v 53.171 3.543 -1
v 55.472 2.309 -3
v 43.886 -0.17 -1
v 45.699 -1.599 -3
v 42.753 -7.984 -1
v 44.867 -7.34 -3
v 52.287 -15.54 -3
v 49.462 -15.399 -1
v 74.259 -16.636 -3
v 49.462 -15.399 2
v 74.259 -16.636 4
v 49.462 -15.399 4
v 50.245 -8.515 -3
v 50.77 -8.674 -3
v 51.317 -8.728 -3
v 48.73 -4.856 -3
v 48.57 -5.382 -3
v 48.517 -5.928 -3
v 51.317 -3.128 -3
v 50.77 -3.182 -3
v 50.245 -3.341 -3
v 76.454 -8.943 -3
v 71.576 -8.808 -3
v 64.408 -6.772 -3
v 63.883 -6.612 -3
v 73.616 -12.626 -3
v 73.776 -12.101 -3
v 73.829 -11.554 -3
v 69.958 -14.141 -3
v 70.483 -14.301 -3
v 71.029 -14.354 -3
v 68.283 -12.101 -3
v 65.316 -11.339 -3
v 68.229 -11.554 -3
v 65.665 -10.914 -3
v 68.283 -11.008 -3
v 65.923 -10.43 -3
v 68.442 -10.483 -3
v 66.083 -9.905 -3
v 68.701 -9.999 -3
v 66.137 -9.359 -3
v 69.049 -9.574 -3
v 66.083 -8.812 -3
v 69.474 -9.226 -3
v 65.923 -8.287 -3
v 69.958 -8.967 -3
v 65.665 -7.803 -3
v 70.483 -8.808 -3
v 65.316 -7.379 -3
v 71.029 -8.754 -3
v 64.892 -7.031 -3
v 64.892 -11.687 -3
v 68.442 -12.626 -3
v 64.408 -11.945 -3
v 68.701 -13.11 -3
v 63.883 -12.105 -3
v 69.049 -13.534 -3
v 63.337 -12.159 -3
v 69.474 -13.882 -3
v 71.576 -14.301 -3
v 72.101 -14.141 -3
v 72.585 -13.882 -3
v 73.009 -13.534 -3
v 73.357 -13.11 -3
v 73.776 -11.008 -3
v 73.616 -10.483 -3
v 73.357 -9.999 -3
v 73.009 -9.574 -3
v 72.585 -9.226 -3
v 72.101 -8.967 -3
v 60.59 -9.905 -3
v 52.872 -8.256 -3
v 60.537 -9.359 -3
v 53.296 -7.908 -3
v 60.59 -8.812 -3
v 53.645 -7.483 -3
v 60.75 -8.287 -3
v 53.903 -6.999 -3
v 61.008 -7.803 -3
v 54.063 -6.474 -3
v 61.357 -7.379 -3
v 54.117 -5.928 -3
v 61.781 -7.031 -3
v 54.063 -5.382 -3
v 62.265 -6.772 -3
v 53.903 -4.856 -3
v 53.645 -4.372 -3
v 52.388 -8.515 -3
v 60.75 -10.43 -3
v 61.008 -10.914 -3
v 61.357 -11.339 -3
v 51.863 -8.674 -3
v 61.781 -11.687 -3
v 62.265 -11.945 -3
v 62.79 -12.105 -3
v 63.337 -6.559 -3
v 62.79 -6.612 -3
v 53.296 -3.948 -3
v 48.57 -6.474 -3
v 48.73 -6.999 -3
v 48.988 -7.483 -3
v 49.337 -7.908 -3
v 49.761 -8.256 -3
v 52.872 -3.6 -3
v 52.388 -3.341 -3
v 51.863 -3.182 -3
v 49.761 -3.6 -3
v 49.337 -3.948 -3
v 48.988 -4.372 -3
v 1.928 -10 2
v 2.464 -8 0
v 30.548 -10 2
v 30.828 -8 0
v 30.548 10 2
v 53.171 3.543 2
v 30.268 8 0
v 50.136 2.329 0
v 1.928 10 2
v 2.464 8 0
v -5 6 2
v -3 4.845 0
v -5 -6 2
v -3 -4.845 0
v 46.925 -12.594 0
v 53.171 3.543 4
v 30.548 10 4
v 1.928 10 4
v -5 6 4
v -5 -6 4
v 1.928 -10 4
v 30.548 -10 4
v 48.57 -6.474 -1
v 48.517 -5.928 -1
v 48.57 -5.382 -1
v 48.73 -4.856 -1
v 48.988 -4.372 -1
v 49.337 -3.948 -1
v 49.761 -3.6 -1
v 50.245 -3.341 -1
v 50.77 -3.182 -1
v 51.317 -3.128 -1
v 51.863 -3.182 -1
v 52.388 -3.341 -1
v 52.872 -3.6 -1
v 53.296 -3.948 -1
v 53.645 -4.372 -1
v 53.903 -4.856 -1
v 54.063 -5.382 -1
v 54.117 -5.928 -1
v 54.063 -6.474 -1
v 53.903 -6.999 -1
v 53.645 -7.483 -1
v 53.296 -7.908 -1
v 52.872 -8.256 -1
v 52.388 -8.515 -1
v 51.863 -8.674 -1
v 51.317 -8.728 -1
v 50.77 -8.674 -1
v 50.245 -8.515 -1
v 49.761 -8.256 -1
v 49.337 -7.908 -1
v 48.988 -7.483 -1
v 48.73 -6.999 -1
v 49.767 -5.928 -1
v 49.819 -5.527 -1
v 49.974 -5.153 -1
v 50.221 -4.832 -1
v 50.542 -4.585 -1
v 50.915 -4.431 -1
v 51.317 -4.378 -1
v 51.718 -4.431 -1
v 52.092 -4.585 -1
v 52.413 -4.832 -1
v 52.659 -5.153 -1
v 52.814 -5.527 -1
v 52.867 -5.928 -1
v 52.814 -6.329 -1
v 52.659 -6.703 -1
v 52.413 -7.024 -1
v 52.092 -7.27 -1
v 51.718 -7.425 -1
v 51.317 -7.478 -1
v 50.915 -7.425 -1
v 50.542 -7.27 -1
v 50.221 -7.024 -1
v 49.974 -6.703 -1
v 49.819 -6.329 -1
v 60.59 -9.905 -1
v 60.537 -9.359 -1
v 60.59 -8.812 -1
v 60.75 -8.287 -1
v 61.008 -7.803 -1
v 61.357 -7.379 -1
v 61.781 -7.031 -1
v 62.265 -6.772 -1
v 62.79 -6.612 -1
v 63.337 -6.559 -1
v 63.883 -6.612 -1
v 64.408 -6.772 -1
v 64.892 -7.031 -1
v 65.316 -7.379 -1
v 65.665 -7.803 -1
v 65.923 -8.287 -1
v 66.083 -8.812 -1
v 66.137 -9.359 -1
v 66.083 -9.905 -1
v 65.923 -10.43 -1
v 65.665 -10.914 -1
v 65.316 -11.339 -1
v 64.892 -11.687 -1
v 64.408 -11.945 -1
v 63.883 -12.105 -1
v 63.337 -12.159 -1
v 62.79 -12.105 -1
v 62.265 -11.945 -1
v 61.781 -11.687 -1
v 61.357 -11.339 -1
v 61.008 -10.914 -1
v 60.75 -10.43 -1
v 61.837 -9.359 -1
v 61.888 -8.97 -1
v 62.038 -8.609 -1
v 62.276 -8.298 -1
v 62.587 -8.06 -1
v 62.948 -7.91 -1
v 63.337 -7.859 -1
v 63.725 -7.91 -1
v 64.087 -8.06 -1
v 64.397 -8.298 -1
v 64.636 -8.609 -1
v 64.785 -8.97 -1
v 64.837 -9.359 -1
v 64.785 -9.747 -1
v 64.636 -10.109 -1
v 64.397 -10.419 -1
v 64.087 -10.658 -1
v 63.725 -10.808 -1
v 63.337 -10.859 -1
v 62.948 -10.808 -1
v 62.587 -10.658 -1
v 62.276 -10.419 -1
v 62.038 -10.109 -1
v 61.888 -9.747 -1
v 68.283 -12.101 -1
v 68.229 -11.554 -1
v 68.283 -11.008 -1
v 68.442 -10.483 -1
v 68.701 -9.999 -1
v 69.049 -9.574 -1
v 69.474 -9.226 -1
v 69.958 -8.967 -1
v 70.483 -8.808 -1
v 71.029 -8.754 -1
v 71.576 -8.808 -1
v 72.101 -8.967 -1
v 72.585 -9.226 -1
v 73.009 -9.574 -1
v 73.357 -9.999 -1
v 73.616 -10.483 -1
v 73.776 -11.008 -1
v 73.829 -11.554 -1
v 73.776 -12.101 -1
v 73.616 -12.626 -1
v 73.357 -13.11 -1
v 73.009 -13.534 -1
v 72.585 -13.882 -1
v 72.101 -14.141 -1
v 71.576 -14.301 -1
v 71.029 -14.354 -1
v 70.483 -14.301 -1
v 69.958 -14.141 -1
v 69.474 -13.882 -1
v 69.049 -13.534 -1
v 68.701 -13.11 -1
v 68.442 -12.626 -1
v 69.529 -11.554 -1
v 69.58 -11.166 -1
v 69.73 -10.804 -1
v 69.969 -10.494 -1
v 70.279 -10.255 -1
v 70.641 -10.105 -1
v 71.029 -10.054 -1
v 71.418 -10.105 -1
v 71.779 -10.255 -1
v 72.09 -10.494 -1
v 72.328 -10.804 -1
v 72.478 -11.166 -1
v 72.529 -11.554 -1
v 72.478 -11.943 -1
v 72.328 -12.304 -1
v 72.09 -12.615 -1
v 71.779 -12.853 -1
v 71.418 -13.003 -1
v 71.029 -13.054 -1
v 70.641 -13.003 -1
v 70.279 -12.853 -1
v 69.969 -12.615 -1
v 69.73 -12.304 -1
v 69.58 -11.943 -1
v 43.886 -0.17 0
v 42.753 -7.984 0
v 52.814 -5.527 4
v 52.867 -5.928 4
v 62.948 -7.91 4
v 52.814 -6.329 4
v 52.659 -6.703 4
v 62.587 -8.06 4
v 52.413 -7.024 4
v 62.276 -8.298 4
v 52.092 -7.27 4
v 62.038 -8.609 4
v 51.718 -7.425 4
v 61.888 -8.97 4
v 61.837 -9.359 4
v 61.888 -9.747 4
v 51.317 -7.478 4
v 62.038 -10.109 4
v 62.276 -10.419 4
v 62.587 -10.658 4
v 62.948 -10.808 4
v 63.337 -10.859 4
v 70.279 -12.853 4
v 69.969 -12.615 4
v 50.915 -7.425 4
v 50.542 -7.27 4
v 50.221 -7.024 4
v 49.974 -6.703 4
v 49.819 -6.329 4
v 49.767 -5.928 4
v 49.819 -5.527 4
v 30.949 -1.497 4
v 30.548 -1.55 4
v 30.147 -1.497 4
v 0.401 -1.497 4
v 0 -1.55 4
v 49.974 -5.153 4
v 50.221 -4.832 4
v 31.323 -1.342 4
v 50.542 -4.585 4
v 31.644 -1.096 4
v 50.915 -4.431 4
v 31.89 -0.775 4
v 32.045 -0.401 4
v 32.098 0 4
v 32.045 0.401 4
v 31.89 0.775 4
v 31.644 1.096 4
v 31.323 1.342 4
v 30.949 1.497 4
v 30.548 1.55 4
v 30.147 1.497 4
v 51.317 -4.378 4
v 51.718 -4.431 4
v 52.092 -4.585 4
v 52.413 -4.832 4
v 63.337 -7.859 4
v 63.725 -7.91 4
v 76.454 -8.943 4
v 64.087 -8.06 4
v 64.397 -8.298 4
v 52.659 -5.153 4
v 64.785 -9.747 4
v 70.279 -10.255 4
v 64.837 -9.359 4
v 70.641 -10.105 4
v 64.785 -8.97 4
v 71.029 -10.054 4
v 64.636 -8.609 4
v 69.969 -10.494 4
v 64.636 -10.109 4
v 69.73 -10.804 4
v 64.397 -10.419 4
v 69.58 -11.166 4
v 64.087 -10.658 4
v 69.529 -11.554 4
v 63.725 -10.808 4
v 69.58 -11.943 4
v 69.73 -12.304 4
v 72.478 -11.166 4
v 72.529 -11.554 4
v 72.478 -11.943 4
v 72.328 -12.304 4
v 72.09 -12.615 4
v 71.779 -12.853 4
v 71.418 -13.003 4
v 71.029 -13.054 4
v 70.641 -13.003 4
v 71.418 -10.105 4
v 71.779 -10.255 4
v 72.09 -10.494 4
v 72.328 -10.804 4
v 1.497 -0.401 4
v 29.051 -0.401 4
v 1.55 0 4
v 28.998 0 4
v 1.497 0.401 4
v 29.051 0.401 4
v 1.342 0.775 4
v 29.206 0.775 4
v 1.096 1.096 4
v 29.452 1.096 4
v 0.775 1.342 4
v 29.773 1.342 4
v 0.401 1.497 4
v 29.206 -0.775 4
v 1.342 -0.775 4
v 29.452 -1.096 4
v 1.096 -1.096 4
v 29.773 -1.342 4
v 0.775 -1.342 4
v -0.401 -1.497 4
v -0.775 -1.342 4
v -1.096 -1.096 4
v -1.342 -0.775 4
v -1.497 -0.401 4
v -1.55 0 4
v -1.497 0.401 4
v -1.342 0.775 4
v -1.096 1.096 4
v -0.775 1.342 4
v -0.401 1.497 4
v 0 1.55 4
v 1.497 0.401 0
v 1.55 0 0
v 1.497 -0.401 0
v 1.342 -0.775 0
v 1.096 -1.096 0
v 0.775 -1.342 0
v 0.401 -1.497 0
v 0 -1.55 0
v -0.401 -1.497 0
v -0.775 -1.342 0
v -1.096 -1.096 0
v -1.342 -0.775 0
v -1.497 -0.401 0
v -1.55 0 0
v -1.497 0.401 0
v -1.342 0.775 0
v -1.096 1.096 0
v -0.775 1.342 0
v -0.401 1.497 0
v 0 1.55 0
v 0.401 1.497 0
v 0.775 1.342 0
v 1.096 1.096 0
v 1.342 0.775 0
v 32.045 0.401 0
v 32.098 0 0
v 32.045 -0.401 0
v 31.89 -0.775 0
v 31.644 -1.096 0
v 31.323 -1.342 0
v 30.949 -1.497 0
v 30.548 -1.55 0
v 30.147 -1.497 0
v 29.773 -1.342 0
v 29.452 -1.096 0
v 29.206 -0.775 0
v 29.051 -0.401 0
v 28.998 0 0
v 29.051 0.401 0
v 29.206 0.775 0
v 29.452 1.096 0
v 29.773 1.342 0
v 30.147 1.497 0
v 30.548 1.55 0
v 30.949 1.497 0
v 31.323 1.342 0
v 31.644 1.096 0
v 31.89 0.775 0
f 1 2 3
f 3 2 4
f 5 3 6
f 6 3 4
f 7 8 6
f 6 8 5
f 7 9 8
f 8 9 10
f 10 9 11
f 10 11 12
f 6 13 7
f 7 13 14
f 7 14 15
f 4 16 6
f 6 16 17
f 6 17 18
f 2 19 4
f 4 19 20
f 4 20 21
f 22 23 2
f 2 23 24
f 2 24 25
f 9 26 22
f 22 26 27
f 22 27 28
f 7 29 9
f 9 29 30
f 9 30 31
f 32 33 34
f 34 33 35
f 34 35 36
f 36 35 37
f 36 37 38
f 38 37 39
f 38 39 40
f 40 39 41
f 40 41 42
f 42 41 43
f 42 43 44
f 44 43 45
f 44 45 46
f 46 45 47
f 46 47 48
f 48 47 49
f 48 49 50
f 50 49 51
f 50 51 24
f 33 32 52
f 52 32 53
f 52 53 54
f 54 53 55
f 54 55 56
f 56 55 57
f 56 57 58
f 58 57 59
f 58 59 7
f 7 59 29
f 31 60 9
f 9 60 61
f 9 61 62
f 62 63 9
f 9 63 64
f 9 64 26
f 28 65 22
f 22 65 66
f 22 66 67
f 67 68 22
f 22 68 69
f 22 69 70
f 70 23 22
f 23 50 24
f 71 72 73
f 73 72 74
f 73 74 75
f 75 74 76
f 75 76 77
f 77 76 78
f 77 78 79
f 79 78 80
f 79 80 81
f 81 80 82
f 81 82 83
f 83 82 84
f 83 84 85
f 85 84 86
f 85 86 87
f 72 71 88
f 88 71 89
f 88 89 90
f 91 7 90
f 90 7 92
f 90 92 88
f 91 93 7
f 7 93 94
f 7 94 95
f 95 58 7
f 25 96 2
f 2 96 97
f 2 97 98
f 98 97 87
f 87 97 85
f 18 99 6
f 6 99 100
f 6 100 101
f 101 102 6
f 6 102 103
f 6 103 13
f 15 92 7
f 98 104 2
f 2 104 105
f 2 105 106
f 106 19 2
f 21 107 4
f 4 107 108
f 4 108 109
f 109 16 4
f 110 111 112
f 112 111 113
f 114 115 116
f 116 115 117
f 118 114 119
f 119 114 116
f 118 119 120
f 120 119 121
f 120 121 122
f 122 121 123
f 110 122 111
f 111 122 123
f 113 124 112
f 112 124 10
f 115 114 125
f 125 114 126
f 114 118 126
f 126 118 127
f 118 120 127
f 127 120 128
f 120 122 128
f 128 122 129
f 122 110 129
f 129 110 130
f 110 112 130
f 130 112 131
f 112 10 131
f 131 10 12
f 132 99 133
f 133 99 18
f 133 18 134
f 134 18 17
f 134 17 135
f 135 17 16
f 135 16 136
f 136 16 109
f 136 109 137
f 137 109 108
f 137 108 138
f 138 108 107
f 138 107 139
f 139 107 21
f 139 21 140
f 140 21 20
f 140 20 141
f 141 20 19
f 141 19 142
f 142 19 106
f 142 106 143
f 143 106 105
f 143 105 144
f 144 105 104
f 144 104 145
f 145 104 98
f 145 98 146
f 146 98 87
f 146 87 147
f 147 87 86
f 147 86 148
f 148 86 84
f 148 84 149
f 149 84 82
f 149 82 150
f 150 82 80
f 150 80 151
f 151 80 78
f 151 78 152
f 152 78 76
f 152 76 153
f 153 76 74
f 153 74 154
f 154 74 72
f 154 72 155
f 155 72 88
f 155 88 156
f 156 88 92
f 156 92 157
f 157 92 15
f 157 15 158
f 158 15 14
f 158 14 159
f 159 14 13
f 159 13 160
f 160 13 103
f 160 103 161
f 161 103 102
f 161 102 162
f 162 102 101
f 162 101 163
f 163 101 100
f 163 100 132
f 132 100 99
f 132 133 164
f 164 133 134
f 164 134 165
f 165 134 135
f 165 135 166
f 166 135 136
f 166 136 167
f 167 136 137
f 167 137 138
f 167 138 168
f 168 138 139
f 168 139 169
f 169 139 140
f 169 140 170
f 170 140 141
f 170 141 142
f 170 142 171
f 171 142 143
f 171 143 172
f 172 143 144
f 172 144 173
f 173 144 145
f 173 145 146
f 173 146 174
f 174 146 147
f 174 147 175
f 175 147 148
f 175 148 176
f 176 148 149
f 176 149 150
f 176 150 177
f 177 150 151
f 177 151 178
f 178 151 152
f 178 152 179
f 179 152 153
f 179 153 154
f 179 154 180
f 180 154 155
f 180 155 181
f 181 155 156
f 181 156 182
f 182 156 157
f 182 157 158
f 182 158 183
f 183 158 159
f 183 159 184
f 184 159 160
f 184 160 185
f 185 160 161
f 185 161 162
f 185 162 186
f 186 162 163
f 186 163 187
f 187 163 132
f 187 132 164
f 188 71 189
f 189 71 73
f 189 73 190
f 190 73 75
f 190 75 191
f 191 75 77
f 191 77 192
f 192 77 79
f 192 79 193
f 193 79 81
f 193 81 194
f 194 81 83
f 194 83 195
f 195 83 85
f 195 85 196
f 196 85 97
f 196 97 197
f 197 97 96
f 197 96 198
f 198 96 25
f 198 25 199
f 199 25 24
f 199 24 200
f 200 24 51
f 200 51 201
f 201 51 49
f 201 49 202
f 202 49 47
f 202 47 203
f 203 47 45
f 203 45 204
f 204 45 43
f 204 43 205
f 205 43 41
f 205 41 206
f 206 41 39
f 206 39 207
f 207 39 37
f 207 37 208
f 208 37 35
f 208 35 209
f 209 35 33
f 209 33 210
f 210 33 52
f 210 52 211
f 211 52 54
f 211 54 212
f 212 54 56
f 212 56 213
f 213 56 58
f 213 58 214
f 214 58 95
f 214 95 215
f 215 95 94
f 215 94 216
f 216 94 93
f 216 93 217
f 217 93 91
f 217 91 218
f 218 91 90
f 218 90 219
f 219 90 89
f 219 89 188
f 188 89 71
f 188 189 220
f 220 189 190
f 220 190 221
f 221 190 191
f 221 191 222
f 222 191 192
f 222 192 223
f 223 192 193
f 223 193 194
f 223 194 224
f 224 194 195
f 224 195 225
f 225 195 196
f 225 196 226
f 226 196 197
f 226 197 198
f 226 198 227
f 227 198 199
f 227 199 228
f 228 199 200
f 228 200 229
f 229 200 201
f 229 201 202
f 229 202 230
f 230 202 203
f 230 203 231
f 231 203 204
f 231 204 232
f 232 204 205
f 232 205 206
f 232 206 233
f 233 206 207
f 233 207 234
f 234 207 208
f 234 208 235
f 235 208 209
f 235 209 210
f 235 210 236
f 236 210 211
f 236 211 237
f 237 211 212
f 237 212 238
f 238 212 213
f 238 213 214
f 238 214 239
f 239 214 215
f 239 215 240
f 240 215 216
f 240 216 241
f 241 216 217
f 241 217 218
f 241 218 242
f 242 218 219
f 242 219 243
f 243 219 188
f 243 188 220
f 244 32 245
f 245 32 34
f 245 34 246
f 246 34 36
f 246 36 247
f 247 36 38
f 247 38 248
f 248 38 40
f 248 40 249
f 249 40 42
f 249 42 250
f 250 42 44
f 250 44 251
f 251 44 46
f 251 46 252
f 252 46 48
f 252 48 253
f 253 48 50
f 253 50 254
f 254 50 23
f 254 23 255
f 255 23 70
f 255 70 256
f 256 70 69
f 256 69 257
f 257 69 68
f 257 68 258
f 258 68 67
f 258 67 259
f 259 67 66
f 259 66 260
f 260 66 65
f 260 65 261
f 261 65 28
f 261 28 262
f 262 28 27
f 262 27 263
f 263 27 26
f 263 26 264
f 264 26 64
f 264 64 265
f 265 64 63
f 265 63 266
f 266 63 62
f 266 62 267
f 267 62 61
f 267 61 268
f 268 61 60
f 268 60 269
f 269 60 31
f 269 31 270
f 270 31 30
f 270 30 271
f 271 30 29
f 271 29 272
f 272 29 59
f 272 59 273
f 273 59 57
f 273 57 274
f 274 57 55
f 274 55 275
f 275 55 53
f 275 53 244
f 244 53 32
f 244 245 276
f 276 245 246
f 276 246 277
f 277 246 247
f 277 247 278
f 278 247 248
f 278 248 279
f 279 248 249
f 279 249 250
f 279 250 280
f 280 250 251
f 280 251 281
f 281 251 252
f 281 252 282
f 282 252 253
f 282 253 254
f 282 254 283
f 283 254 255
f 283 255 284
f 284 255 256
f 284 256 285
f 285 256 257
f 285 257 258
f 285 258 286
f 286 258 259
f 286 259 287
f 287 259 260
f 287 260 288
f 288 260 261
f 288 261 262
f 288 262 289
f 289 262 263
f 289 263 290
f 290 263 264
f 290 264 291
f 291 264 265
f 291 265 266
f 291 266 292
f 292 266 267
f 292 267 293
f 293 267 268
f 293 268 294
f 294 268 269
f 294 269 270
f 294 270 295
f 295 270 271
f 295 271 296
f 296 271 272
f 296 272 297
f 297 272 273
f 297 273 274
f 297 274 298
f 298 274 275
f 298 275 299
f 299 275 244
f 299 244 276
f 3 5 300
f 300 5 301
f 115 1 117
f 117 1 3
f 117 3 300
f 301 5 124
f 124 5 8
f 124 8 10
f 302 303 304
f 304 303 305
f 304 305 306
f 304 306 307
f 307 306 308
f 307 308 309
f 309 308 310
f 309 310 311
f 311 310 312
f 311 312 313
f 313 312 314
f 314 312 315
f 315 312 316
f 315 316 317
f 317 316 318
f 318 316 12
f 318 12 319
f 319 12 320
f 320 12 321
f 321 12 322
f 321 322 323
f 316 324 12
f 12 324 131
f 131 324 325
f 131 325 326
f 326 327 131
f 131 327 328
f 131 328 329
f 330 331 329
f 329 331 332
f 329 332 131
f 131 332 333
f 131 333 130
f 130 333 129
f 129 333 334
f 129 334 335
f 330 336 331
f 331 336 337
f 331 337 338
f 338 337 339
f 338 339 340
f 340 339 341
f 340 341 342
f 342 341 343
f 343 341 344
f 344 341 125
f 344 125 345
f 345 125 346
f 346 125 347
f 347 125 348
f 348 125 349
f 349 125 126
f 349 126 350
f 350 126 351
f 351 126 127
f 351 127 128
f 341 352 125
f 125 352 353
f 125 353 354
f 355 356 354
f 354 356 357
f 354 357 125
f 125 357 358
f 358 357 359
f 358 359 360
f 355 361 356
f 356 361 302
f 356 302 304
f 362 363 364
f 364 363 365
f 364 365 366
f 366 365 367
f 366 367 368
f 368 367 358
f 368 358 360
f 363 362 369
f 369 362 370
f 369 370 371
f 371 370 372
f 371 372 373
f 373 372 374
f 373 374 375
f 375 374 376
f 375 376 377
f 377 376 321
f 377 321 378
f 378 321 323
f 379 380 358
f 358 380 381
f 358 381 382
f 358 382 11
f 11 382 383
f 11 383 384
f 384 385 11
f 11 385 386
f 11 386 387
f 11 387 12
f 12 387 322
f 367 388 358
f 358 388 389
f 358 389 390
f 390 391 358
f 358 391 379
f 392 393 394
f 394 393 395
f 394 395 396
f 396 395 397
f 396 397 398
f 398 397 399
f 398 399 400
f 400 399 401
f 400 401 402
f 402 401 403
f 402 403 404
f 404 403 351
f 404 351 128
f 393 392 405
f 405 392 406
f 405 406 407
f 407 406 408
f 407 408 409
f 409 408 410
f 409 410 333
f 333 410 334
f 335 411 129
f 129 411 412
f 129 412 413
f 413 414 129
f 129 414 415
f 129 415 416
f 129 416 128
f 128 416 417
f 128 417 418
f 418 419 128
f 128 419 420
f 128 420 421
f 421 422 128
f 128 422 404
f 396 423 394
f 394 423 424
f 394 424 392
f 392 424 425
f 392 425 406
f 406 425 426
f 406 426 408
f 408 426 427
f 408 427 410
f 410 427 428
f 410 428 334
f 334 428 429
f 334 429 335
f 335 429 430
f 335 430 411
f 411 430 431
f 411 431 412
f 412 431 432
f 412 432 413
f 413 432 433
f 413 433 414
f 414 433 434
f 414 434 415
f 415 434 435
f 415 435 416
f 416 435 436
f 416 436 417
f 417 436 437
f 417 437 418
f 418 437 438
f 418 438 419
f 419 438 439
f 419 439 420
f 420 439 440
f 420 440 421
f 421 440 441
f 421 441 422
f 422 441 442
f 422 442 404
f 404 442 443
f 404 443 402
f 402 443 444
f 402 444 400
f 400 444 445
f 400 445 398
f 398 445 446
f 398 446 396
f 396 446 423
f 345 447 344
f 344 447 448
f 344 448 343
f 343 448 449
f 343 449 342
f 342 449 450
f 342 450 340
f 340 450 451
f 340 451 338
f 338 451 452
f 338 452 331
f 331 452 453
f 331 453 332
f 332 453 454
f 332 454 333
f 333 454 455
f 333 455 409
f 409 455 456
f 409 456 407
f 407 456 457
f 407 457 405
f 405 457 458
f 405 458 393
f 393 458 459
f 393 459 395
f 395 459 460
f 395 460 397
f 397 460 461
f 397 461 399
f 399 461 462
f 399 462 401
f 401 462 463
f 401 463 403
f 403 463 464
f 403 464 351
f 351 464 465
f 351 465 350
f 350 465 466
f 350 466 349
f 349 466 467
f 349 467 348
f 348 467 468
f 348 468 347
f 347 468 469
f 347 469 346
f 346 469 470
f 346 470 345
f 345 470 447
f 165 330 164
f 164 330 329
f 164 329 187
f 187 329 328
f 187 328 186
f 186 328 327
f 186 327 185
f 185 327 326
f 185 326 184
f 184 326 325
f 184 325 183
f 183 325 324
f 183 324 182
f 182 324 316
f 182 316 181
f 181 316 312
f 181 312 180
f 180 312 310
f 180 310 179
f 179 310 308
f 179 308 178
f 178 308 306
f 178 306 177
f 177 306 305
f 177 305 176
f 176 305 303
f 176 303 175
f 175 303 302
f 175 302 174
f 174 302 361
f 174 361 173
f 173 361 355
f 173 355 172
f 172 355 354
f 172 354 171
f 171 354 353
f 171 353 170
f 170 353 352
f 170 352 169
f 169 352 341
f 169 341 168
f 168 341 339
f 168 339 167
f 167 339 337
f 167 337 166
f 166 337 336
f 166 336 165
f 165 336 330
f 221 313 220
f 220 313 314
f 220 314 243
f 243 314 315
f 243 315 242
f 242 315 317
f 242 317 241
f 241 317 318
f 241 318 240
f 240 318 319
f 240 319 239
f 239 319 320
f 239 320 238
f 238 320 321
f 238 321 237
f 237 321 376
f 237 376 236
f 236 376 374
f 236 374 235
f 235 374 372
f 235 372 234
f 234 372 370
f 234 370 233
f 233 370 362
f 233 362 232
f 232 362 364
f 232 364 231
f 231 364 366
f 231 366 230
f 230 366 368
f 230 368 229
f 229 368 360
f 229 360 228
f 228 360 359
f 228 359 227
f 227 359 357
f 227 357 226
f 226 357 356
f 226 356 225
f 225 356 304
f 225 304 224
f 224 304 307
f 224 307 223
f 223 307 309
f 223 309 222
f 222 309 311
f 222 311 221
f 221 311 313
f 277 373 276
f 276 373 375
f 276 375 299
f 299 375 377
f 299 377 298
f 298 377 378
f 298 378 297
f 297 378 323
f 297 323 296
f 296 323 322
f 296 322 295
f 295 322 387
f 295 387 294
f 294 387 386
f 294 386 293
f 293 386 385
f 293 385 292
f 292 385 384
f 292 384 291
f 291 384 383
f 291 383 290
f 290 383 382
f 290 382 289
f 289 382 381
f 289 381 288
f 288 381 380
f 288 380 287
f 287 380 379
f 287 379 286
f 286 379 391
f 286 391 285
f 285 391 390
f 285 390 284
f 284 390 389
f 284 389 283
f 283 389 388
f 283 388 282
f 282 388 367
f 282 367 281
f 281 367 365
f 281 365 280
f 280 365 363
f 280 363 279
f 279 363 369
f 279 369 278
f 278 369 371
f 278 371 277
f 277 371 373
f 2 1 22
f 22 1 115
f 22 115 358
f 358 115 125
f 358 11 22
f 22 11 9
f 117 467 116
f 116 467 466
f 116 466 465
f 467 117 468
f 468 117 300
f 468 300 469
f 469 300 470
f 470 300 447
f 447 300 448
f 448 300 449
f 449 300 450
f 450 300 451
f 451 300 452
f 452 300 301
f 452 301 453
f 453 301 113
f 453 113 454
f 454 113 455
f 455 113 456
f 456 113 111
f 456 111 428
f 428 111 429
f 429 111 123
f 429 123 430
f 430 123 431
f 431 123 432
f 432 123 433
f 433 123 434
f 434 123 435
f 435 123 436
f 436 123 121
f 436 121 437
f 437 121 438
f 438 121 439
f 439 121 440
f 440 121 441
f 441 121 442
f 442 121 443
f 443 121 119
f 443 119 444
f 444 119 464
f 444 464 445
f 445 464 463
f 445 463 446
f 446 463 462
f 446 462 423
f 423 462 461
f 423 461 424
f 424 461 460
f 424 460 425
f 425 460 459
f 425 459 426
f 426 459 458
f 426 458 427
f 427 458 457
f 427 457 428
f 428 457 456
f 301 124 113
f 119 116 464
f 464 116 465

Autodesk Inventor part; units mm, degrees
ref_plane "YZ Plane" through (0, 0, 0) normal (1, 0, 0) x (0, 1, 0)
ref_plane "XZ Plane" through (0, 0, 0) normal (0, 1, 0) x (-1, 0, 0)
ref_plane "XY Plane" through (0, 0, 0) normal (0, 0, 1) x (1, 0, 0)
sketch "Sketch1" plane through (0, 0, 0) normal (0, 0, 1) x (1, 0, 0)
  circle A0 centre (0, 0) radius 1.55
  line L0 (0, 0) -> (30.548, 0)
  circle A1 centre (30.548, 0) radius 1.55
  line L1 (30.548, 0) -> (51.3166, -5.9278)
  circle A2 centre (51.3166, -5.9278) radius 1.55
  line L2 (0, 0) -> (-5, 0)
  line L3 (-5, 0) -> (-5, 6)
  line L4 (-5, 6) -> (1.9282, 10)
  line L5 (-5, 0) -> (-5, -6)
  line L6 (1.9282, 10) -> (30.548, 10)
  line L7 (-5, -6) -> (1.9282, -10)
  line L8 (1.9282, -10) -> (30.548, -10)
  line L9 (30.548, -10) -> (49.4624, -15.3986)
  line L10 (30.548, 10) -> (53.1707, 3.5429)
  line L11 (0, 0) -> (1.9282, 0)
  line L12 (51.3166, -5.9278) -> (75.3565, -12.7894)
  line L13 (75.3565, -12.7894) -> (76.4544, -8.943)
  line L14 (76.4544, -8.943) -> (53.1707, 3.5429)
  line L15 (75.3565, -12.7894) -> (74.2587, -16.6358)
  line L16 (49.4624, -15.3986) -> (74.2587, -16.6358)
  line L17 (51.3166, -5.9278) -> (75.3565, -12.7894)
  circle A3 centre (63.3366, -9.3586) radius 1.5
  line L18 (63.3366, -9.3586) -> (71.0293, -11.5543)
  circle A4 centre (71.0293, -11.5543) radius 1.5
  dimension "d0" = 3.1
  dimension "d1" = 30.548
  dimension "d2" = 3.1
  dimension "d3" = 164.07
  dimension "d4" = 3.1
  dimension "d5" = 21.598
  dimension "d6" = 5
  dimension "d7" = 6
  dimension "d8" = 6
  dimension "d9" = 120
  dimension "d10" = 8
  dimension "d11" = 120
  dimension "d12" = 8
  dimension "d13" = 28.6198
  dimension "d14" = 28.6198
  dimension "d15" = 19.6698
  dimension "d16" = 23.5262
  dimension "d23" = 1.9282
  dimension "d54" = 25
  dimension "d55" = 180
  dimension "d56" = 4
  dimension "d57" = 4
  dimension "d58" = 90
  dimension "d59" = 90
  dimension "d60" = 3
  dimension "d61" = 8
  dimension "d62" = 3
extrude "Extrusion1" add sketch "Sketch1" along normal blind 4 contours L0 A1 L1 A2 L12 A3 A4 L15 L16 L9 L8 L7 L5 L2 A0 | A0 L2 L3 L4 L6 L10 L14 L13 L12 A4 A3 A2 L1 A1 L0
sketch "Sketch3" plane through (0, 0, 4) normal (0, 0, 1) x (1, 0, 0)
  line L0 (1.9282, -10) -> (30.548, -10) projected
  line L1 (30.548, -10) -> (49.4624, -15.3986) projected
  line L2 (49.4624, -15.3986) -> (74.2587, -16.6358) projected
  line L3 (74.2587, -16.6358) -> (76.4544, -8.943) projected
  line L4 (76.4544, -8.943) -> (53.1707, 3.5429) projected
  line L5 (53.1707, 3.5429) -> (30.548, 10) projected
  line L6 (30.548, 10) -> (1.9282, 10) projected
  line L7 (1.9282, 10) -> (-5, 6) projected
  line L8 (-5, 6) -> (-5, -6) projected
  line L9 (-5, -6) -> (1.9282, -10) projected
  circle A0 centre (71.0293, -11.5543) radius 1.5 projected
  circle A1 centre (63.3366, -9.3586) radius 1.5 projected
  circle A2 centre (51.3166, -5.9278) radius 1.55 projected
  circle A3 centre (30.548, 0) radius 1.55 projected
  circle A4 centre (0, 0) radius 1.55 projected
  line L10 (49.4624, -15.3986) -> (42.7525, -7.984)
  line L11 (42.7525, -7.984) -> (43.8857, -0.1703)
  line L12 (43.8857, -0.1703) -> (53.1707, 3.5429)
  dimension "d63" = 10
  dimension "d64" = 10
  dimension "d65" = 130
  dimension "d66" = 135
extrude "Extrusion2" add sketch "Sketch3" against normal blind 7 contours L10 L11 L12 L4 L3 L2
sketch "Sketch4" plane through (0, 0, -3) normal (0, 0, -1) x (-1, 0, 0)
  line L0 (-53.1707, 3.5429) -> (-76.4544, -8.943) projected
  line L1 (-76.4544, -8.943) -> (-74.2587, -16.6358) projected
  line L2 (-74.2587, -16.6358) -> (-49.4624, -15.3986) projected
  line L3 (-49.4624, -15.3986) -> (-42.7525, -7.984) projected
  line L4 (-42.7525, -7.984) -> (-43.8857, -0.1703) projected
  line L5 (-43.8857, -0.1703) -> (-53.1707, 3.5429) projected
  circle A0 centre (-71.0293, -11.5543) radius 1.5 projected
  circle A1 centre (-51.3166, -5.9278) radius 1.55 projected
  circle A2 centre (-63.3366, -9.3586) radius 1.5 projected
  circle A3 centre (-71.0293, -11.5543) radius 2.8
  circle A4 centre (-63.3366, -9.3586) radius 2.8
  circle A5 centre (-51.3166, -5.9278) radius 2.8
  point P0 (0, 0)
  dimension "d69" = 5.6
  dimension "d70" = 5.6
  dimension "d71" = 5.6
extrude "Extrusion3" cut sketch "Sketch4" against normal blind 2 contours A3 | A4 | A5
chamfer "Chamfer1" distance 2 angle 45 10 edges at (41.8594, 6.7715, 0) (16.2381, -10, 0) (40.0052, -12.6993, 0) (-1.5359, -8, 0) (-5, 0, 0) (-1.5359, 8, 0) (16.2381, 10, 0) (48.5282, 1.6863, -3) (43.3191, -4.0771, -3) (46.1075, -11.6913, -3)
equation "\"d8\" = d7"
equation "\"d11\" = d9"
equation "\"d12\" = d10"
equation "\"d13\" = d1 - d23"
equation "\"d14\" = d1 - d23"
equation "\"d15\" = d5 - d23"
equation "\"d16\" = d5 + d23"
equation "\"d57\" = d56"
equation "\"d58\" = d59"
equation "\"d70\" = d69"
equation "\"d71\" = d69"
properties part number "Fibula"
